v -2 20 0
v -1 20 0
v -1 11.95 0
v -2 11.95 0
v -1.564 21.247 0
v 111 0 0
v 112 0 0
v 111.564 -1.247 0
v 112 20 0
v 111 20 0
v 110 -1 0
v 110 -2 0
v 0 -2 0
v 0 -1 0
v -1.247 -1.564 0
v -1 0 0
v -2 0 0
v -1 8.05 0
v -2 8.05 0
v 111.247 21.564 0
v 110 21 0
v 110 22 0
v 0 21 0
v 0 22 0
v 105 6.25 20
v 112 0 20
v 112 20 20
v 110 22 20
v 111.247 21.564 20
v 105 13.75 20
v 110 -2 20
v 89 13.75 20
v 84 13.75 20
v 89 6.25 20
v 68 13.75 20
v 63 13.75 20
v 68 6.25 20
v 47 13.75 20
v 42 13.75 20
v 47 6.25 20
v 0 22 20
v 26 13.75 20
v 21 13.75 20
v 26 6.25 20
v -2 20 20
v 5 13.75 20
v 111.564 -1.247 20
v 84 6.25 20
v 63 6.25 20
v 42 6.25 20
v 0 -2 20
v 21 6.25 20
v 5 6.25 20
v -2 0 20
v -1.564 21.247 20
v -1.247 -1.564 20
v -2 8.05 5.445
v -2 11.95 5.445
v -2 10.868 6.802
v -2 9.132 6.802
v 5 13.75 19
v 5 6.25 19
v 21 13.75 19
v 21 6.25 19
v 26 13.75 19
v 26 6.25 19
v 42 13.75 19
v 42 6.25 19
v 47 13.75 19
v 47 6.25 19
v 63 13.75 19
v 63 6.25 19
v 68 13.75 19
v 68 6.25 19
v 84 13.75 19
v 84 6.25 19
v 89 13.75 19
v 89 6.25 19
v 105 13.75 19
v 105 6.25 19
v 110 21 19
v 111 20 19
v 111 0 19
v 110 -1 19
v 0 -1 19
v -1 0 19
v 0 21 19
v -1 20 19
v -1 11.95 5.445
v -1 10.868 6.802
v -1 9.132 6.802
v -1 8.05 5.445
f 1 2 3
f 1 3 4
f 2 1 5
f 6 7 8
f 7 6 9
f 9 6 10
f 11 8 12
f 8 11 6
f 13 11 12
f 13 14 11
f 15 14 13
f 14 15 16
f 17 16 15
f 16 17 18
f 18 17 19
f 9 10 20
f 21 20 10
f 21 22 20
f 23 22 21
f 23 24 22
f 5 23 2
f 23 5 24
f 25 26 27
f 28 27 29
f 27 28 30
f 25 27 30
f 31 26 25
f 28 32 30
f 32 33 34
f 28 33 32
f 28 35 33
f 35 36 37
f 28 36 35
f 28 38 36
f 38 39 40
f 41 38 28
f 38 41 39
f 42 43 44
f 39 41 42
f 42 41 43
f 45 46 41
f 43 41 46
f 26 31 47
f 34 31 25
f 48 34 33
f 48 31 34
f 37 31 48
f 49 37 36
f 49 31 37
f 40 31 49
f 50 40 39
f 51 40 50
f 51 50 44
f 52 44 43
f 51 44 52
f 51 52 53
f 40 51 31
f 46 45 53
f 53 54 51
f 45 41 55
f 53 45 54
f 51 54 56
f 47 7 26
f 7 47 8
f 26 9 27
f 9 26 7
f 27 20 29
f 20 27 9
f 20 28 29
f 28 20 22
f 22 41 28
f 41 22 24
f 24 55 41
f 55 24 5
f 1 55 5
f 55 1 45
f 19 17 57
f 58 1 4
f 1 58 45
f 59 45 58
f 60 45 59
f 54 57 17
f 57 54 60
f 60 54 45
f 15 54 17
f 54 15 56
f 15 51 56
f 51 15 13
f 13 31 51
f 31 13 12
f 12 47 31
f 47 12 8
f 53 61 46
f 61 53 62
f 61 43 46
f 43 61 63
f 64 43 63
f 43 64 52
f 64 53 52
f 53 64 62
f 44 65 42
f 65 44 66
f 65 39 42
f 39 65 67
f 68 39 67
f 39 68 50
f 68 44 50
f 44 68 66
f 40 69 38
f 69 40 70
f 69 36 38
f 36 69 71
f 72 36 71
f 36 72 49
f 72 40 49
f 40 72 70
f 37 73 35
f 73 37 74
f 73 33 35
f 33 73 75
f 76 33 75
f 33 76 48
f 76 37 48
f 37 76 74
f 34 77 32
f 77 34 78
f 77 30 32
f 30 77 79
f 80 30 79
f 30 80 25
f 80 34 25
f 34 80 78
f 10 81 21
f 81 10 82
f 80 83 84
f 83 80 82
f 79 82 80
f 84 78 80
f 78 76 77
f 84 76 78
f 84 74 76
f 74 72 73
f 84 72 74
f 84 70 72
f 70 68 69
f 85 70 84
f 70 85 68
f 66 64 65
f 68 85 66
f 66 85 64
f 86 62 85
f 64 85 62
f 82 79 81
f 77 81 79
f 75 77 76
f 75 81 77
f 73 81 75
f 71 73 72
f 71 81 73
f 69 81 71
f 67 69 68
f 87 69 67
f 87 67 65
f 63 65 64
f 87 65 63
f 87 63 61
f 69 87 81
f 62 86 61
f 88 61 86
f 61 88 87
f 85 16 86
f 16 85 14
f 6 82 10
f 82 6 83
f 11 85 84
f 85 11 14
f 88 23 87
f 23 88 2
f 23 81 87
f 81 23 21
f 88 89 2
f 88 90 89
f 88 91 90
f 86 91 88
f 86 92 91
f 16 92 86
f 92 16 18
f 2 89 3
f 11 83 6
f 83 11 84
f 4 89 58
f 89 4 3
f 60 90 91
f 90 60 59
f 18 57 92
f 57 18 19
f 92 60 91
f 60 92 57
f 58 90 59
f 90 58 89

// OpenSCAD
difference(){
linear_extrude(20)
difference(){
    offset(2)
    square([110,20]);
    translate([5,5-7.5/2+10/2,0])
    for (i = [0 : 1: 4]){
        translate([i*(16+5),0,0])
        square([16,7.5]);
    }
}

translate([0,0,-1])
linear_extrude(20)
offset(1)
square([110,20]);

translate([-200,-10,5])
hull(){
translate([-5,20,0])
rotate([0,90,0])
cylinder(d=4,h=300);
translate([-5,20,-10])
rotate([0,90,0])
cylinder(d=4,h=300);
}
}
